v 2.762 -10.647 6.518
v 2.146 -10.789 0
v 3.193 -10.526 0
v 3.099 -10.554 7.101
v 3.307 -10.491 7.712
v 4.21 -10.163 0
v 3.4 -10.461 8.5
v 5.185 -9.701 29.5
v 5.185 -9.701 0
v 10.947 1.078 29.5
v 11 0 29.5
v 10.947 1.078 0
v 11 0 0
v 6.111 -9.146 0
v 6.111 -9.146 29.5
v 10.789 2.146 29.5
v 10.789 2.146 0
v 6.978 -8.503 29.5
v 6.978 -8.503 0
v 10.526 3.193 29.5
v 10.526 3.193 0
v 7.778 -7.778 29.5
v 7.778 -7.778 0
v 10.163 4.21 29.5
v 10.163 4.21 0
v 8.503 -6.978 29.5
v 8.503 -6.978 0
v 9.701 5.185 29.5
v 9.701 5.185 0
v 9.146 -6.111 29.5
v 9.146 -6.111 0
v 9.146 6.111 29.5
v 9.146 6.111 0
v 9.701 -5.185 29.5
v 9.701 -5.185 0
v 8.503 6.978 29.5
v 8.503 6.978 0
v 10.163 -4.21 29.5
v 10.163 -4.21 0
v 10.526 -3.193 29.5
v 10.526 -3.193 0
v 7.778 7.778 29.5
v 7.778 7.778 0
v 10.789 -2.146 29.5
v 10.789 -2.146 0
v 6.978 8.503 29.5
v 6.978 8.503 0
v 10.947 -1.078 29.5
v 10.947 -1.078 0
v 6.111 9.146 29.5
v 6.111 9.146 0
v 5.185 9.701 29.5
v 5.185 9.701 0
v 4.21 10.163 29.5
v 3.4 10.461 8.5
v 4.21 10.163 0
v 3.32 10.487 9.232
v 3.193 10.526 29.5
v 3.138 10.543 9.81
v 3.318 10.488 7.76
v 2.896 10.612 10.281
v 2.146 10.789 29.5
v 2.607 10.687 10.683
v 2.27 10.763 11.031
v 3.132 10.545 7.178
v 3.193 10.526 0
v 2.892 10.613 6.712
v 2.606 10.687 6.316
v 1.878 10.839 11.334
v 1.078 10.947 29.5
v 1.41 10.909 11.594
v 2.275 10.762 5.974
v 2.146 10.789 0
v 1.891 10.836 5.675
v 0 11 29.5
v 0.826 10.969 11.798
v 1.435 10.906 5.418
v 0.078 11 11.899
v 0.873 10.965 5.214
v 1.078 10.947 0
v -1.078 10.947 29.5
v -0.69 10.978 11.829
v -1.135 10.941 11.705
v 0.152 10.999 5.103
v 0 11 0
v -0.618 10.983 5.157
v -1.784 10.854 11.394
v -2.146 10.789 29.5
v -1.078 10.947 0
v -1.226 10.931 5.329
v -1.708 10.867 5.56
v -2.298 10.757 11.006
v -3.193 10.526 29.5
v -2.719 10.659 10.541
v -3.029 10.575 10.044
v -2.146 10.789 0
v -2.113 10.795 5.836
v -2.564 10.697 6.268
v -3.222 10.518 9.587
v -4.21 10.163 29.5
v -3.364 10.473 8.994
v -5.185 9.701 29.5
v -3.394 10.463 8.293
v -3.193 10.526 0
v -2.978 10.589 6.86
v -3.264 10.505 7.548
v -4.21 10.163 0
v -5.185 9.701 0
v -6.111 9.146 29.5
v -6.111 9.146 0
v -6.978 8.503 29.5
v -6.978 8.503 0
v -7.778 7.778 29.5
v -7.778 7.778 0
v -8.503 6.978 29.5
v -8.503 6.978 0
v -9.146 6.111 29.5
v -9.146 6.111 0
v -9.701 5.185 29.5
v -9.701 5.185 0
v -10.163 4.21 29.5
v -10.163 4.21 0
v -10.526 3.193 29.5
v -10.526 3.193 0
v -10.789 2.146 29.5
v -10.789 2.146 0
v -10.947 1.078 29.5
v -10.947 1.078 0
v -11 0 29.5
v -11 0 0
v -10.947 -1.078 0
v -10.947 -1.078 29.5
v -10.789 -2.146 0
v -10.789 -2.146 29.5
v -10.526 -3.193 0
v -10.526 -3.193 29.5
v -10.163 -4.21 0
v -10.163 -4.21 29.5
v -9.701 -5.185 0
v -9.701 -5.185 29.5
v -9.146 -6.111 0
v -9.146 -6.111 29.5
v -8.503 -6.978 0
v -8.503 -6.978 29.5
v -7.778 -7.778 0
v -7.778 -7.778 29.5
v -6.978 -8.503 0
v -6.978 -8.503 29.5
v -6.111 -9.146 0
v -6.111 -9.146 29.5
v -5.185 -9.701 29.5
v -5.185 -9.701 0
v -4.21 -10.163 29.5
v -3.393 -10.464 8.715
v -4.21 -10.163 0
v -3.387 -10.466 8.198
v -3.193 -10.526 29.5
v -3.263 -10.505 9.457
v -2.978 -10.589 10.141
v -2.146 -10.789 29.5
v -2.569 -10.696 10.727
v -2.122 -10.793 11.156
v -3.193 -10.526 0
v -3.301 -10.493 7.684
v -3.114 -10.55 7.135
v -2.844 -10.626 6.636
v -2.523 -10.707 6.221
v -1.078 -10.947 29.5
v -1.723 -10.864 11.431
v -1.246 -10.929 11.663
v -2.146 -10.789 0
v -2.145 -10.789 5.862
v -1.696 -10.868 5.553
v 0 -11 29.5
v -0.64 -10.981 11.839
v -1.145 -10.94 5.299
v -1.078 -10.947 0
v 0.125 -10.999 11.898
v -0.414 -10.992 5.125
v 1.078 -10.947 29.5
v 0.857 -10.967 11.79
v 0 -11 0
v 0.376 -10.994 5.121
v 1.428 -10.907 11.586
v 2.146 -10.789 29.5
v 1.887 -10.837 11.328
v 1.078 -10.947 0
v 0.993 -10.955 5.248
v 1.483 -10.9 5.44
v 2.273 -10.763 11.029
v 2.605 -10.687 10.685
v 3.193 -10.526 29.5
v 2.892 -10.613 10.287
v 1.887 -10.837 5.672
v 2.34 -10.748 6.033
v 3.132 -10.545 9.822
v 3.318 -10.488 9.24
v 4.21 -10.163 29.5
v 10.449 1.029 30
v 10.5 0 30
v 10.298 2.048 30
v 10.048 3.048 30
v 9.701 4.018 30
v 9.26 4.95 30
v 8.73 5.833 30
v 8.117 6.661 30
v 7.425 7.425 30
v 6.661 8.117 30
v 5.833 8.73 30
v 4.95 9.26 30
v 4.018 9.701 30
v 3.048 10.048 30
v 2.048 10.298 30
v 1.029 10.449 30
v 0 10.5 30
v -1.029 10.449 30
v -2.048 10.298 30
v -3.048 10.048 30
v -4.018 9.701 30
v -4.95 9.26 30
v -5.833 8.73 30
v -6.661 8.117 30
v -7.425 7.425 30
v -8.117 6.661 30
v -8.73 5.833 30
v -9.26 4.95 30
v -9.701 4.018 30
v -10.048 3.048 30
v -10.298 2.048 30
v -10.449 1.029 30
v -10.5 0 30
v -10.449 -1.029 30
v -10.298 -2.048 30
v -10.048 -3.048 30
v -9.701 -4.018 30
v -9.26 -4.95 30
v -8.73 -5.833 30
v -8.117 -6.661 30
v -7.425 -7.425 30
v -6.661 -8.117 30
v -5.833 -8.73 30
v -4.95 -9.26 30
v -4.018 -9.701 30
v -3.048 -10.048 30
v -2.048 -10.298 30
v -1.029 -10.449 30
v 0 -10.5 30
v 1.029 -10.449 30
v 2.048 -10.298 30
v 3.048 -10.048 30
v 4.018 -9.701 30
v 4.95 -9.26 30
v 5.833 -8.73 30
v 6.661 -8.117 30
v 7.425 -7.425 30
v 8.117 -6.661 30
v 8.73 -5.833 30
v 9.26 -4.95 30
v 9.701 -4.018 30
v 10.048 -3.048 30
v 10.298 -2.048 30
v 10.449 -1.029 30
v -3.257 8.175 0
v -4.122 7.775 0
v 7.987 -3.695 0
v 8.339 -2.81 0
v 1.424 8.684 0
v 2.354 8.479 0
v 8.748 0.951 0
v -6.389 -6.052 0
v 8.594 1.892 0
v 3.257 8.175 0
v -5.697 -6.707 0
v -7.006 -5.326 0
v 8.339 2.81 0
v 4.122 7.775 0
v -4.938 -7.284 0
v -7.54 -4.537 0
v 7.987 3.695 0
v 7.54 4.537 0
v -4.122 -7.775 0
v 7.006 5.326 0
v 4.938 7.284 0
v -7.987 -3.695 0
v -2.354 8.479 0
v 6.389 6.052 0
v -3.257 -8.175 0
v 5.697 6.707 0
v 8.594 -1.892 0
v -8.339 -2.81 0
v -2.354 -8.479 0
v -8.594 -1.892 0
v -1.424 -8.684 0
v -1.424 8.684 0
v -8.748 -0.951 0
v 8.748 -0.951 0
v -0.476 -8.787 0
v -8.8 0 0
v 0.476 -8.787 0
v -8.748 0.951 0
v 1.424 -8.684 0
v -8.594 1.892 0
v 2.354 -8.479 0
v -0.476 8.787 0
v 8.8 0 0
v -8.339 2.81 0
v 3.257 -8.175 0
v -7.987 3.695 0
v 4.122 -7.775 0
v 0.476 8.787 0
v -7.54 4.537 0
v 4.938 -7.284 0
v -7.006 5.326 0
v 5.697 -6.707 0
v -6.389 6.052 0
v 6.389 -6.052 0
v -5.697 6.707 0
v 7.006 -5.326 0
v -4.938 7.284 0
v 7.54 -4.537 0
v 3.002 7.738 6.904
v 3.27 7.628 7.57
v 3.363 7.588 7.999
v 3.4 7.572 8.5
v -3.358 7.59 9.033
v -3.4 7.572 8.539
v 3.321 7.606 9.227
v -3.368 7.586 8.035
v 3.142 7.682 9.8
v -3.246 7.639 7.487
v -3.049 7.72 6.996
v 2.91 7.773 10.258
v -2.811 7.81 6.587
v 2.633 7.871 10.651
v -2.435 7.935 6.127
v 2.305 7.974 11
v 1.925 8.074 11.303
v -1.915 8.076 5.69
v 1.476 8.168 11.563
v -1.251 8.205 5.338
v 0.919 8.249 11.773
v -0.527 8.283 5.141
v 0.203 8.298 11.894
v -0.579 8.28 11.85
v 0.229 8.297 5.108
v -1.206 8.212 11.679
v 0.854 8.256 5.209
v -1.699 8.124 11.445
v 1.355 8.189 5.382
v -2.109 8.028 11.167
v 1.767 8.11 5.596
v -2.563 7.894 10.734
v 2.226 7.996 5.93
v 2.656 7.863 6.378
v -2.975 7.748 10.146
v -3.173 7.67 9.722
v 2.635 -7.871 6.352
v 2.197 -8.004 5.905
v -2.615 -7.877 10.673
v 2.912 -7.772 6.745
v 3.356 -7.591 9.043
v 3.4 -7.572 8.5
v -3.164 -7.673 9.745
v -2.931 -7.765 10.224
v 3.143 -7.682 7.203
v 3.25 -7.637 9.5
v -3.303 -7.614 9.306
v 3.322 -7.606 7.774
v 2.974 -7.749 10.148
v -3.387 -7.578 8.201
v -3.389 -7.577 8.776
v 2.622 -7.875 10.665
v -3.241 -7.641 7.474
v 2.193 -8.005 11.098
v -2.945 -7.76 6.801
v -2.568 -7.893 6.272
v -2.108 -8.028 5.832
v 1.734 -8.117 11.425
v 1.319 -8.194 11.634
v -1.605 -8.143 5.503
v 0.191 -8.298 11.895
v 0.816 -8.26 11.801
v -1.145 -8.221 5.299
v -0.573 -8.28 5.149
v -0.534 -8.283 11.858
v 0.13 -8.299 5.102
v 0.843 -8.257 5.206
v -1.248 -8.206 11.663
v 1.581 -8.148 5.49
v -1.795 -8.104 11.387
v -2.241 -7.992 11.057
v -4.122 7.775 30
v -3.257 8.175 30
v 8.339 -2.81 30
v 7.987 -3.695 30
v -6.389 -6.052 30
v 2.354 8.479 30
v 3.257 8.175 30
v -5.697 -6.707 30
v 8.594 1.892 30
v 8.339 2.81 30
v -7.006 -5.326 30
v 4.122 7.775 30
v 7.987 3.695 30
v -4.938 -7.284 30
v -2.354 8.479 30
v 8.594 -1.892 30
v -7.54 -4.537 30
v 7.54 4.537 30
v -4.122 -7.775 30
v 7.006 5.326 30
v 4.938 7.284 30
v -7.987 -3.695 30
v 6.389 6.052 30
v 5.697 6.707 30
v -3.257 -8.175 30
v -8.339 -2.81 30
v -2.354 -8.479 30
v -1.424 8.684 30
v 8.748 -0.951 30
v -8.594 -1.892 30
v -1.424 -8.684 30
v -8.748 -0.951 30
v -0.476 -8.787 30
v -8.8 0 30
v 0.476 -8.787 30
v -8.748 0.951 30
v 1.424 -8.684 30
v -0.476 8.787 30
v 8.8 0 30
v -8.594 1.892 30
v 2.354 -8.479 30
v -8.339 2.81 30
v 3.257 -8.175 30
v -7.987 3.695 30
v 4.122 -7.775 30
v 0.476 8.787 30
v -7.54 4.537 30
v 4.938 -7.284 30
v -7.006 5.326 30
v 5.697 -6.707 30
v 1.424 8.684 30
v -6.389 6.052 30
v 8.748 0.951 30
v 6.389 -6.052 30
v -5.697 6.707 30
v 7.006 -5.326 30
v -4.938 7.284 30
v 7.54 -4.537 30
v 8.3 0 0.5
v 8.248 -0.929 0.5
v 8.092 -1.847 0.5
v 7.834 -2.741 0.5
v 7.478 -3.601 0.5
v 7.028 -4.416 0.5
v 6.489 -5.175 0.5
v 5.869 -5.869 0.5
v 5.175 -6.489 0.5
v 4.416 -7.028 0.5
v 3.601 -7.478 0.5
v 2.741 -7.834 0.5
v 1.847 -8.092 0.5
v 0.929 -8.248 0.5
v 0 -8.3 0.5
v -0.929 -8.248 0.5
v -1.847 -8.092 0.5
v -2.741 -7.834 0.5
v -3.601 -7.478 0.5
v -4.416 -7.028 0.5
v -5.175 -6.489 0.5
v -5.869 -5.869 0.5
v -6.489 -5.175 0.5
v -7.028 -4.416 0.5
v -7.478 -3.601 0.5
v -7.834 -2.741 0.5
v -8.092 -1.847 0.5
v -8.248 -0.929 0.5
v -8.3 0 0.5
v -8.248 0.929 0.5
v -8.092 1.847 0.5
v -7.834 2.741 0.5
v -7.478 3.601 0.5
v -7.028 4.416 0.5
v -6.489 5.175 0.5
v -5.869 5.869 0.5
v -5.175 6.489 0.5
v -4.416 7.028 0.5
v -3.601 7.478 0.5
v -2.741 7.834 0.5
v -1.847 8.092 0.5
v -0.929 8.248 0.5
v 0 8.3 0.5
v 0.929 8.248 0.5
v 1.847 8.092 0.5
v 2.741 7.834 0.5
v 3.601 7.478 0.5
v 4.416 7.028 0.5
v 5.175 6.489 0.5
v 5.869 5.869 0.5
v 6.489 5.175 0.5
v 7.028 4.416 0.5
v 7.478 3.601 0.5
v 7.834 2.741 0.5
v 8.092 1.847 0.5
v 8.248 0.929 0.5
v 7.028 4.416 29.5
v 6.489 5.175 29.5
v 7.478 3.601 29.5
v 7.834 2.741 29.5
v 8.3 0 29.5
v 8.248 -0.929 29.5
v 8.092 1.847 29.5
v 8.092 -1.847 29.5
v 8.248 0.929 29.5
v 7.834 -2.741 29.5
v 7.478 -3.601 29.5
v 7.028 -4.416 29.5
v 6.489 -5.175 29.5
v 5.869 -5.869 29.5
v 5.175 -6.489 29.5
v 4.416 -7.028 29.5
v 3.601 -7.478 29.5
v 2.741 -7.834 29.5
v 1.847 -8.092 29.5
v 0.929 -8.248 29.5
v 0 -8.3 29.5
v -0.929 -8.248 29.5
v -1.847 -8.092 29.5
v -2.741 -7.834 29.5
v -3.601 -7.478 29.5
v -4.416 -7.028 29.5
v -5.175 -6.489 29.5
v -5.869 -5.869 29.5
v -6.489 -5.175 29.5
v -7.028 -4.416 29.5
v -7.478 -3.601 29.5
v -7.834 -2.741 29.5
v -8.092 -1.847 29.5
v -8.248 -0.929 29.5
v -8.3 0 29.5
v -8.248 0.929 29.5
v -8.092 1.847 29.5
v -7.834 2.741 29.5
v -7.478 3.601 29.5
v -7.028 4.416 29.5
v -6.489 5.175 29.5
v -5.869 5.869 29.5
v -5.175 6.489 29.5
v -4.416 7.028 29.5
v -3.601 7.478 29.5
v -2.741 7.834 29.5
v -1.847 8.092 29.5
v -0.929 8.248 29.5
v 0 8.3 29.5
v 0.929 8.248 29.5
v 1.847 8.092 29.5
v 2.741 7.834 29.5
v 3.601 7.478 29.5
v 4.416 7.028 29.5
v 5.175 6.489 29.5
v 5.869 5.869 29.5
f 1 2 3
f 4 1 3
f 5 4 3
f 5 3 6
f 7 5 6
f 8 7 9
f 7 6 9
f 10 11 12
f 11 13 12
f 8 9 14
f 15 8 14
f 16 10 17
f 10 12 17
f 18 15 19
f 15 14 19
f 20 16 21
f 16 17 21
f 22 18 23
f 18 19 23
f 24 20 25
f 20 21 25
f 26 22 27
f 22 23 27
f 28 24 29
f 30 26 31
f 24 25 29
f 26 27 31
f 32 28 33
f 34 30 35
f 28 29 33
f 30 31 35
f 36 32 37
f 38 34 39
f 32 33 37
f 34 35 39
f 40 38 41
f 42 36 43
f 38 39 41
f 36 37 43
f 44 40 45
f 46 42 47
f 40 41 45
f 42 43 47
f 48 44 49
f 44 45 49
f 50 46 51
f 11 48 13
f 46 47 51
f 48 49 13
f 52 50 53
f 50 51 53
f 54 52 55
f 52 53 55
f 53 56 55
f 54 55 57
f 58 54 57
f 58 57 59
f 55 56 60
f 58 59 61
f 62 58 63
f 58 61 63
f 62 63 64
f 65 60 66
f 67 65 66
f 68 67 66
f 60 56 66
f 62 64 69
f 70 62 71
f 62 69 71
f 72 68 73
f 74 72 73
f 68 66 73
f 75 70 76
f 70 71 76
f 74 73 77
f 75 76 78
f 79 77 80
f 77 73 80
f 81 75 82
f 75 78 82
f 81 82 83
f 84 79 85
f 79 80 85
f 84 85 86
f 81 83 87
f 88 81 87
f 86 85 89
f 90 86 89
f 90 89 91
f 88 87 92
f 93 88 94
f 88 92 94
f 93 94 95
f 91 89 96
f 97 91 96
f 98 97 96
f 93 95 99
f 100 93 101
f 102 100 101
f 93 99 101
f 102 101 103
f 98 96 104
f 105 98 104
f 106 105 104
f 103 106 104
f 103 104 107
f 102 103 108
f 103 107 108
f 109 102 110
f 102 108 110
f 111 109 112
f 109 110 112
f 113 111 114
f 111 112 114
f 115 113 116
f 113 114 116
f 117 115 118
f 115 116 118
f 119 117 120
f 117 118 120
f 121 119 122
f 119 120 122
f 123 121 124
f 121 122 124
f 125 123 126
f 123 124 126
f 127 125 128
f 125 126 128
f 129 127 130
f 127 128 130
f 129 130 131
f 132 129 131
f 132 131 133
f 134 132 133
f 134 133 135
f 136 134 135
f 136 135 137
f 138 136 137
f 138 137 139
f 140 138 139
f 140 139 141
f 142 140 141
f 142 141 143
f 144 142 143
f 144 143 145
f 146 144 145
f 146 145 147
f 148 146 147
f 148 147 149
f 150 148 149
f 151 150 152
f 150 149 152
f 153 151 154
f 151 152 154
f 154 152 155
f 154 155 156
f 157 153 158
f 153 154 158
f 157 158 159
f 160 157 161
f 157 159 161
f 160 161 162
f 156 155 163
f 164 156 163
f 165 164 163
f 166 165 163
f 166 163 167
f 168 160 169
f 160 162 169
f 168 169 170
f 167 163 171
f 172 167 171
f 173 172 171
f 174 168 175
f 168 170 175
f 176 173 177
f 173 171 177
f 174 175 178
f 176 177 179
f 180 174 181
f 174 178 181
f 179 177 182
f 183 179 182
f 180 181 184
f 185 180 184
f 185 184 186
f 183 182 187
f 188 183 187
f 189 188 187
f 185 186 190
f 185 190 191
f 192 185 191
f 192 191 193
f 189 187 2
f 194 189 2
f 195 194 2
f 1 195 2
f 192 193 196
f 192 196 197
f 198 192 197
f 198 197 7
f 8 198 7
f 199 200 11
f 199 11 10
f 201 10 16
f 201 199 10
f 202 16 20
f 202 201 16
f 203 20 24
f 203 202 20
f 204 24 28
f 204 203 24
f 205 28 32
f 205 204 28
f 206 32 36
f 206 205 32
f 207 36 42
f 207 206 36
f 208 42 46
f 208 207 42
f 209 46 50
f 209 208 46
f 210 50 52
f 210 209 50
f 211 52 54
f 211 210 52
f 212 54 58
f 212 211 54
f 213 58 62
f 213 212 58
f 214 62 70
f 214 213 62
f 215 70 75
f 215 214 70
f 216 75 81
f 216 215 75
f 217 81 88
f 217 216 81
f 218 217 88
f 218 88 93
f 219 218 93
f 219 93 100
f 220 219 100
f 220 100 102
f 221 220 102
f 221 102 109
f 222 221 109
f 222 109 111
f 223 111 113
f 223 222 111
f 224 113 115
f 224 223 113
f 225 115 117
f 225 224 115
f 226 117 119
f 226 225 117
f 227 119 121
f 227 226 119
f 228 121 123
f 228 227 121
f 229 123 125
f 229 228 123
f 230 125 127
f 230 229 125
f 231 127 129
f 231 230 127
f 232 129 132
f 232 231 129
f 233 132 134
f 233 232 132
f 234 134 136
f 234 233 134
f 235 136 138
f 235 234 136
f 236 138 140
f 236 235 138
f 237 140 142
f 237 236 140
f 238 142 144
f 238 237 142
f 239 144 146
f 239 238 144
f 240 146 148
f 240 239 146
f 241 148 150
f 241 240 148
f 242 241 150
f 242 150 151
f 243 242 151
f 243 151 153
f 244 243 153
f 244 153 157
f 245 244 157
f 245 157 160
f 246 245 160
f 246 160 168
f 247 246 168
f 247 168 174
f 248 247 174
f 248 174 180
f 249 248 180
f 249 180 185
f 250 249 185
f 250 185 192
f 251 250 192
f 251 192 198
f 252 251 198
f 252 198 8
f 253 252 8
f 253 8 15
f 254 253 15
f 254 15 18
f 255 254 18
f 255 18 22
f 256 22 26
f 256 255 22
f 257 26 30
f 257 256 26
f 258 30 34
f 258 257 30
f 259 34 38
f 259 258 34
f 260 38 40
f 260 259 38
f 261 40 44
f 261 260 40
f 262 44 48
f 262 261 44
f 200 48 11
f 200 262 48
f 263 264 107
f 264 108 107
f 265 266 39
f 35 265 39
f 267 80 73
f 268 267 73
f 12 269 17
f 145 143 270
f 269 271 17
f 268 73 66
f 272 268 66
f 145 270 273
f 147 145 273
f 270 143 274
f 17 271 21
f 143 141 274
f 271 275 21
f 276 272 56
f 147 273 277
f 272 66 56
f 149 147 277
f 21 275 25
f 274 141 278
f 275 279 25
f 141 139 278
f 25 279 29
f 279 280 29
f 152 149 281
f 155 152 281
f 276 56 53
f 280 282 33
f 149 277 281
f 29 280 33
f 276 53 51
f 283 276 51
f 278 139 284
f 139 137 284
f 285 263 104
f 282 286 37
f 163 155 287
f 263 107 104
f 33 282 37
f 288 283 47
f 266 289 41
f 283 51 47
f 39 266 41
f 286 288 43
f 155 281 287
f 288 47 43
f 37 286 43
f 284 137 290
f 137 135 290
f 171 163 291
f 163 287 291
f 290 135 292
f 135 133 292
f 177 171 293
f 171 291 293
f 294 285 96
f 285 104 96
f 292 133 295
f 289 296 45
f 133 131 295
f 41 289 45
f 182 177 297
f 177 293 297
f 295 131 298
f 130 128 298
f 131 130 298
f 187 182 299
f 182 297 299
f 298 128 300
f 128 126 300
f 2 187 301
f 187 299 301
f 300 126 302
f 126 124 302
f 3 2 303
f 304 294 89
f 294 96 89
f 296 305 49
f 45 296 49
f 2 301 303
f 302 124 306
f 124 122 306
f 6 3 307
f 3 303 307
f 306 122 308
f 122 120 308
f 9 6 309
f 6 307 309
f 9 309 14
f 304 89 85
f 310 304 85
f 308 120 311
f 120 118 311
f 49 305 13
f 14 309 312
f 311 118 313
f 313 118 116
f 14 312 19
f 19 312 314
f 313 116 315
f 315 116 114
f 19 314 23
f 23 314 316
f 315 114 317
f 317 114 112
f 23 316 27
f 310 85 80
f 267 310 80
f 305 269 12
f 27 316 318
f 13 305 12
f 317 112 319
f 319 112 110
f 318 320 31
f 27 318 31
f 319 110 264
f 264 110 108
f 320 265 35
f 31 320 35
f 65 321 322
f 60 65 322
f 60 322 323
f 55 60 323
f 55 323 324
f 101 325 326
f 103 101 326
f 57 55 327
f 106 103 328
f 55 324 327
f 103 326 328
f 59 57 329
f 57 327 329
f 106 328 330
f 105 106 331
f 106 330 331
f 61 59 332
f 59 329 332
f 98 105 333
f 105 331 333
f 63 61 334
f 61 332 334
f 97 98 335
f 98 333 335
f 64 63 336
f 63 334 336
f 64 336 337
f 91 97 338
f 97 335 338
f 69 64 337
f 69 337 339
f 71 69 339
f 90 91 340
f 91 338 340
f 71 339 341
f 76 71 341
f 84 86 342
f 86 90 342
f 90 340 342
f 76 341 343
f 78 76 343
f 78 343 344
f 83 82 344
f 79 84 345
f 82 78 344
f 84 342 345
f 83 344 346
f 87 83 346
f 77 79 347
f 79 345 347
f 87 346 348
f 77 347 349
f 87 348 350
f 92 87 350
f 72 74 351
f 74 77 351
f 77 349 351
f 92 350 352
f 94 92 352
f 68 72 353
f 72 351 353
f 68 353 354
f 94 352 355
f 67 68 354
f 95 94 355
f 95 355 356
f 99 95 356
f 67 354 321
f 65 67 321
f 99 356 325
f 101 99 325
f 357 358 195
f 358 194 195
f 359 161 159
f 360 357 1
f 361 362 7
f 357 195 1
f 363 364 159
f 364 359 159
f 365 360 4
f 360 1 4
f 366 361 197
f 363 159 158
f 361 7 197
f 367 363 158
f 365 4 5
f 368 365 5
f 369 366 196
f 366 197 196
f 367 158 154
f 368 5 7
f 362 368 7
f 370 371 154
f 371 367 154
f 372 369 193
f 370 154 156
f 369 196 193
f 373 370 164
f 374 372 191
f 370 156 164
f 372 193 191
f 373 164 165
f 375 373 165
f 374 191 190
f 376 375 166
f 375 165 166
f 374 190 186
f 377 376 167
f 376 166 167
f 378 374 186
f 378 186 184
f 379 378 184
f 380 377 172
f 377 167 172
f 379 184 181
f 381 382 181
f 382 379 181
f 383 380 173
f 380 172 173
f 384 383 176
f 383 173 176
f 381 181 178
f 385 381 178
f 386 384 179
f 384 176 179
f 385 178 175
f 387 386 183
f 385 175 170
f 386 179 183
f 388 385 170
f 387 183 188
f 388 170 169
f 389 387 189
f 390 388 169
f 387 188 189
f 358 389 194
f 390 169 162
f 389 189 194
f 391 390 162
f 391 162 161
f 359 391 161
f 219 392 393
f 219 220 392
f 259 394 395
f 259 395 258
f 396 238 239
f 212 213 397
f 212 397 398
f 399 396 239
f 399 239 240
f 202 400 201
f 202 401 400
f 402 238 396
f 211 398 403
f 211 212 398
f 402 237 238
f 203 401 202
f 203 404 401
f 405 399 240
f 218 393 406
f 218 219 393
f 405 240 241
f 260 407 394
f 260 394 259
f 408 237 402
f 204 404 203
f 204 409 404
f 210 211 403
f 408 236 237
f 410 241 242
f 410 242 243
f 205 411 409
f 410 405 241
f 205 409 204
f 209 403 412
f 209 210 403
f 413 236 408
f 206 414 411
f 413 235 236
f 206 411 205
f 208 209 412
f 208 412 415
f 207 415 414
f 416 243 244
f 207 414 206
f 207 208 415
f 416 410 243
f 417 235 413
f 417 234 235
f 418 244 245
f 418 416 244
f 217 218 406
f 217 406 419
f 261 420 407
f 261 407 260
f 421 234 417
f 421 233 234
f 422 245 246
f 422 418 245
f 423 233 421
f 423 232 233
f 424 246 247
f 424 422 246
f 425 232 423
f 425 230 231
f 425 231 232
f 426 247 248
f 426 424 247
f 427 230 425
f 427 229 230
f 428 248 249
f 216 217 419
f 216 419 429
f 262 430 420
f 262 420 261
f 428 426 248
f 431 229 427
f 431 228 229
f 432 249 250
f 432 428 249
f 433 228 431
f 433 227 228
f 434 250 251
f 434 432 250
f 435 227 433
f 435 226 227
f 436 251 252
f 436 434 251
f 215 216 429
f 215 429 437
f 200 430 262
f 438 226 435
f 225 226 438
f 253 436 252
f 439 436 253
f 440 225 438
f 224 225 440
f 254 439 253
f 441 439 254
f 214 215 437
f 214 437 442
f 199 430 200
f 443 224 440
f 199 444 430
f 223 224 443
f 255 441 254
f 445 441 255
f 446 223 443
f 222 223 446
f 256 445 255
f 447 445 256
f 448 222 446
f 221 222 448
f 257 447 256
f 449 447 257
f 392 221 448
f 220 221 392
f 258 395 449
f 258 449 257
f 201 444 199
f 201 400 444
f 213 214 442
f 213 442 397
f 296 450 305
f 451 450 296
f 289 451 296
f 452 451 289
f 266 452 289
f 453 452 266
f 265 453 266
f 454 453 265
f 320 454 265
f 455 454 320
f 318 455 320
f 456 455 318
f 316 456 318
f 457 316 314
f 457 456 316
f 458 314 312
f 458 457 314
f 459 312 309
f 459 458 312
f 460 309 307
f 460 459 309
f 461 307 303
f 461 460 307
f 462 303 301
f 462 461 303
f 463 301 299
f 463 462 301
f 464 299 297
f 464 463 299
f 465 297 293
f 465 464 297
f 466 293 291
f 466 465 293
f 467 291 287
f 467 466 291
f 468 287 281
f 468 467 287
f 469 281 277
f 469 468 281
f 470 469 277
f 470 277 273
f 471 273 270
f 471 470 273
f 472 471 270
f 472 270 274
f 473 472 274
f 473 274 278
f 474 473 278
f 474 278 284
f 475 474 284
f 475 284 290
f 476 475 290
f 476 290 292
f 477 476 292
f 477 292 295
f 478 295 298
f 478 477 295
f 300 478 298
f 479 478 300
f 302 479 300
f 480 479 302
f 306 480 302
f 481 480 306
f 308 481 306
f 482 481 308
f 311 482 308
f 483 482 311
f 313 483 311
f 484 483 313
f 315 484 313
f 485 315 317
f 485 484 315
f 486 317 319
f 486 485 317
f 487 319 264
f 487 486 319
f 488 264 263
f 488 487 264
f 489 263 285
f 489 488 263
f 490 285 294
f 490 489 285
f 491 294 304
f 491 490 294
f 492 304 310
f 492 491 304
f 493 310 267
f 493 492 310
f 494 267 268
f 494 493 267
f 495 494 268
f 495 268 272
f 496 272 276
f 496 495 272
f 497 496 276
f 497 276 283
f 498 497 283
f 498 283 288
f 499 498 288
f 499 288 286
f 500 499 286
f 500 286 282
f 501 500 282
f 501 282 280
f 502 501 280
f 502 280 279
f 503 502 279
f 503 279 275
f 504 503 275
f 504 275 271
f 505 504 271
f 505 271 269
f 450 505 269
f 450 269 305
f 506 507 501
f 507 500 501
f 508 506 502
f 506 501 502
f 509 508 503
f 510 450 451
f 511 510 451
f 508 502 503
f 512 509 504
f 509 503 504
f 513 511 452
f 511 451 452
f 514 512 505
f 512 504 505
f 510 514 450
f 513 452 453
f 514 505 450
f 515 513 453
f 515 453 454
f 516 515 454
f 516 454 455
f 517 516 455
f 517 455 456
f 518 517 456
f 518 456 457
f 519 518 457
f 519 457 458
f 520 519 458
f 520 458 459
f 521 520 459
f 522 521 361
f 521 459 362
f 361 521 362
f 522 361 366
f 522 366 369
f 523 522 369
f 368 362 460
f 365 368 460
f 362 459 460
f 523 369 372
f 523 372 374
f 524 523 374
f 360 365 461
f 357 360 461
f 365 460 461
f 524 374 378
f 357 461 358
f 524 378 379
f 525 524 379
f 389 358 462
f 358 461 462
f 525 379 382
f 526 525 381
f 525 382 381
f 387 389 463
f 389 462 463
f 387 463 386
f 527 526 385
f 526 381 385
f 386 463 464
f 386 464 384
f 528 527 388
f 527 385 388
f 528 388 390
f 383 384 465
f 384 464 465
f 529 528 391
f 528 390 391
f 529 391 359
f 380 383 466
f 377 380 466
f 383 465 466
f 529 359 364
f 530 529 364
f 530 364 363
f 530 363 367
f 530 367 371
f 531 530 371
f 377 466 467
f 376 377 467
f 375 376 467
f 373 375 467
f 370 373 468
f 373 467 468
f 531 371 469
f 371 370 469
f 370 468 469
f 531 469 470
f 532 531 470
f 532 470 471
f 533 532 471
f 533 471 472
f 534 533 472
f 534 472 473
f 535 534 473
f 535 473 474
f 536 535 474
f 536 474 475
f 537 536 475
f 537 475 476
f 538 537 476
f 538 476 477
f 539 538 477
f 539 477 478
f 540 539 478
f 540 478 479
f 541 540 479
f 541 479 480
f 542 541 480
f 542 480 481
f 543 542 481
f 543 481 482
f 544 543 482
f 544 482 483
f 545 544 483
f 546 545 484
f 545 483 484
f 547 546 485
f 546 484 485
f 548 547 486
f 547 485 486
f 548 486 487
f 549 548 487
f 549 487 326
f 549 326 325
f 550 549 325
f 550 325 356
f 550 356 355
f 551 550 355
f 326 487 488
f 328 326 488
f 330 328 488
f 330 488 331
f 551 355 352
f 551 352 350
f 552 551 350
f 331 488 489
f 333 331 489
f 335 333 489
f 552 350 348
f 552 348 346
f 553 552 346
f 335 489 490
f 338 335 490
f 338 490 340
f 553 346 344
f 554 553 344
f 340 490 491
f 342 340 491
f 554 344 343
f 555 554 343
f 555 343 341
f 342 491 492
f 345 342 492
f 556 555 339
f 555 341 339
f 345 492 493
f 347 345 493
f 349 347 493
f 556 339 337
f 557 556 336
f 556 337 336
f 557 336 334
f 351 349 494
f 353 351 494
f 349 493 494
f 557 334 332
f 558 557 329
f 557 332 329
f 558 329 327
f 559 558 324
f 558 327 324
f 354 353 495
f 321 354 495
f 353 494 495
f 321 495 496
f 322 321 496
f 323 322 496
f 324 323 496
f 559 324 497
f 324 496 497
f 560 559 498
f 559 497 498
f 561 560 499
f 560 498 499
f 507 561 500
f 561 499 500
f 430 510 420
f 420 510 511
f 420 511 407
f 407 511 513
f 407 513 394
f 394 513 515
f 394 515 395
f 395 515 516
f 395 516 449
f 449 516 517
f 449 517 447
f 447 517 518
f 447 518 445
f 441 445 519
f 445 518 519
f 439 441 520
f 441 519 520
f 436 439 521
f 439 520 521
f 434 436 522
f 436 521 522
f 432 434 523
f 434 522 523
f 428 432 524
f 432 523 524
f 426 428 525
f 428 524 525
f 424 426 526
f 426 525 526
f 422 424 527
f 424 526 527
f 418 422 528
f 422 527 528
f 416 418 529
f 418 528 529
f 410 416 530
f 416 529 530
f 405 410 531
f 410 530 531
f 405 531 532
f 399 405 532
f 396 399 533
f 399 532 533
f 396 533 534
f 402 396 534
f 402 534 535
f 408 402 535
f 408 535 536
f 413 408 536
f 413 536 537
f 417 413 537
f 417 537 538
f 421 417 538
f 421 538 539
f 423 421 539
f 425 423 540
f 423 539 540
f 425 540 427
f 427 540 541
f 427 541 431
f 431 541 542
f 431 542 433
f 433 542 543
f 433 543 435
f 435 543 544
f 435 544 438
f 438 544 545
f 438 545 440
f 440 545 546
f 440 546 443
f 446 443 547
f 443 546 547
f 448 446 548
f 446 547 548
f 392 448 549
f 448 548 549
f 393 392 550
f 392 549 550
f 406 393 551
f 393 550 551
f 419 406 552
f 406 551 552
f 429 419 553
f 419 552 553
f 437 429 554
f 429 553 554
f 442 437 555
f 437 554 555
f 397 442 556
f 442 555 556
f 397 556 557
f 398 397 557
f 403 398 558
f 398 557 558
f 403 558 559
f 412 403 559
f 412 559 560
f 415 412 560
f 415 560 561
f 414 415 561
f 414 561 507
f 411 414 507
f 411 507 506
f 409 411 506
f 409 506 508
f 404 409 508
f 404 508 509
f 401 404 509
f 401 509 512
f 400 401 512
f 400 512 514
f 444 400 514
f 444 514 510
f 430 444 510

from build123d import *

# Parameters (mm, degrees)
CYLINDER_R          = 3.4
CYLINDER_DEPTH      = 100
CYLINDER_ROLL_ANGLE = 90
SKETCH_R            = 11
PAD_DEPTH           = 30
SKETCH001_R         = 8.3
POCKET_DEPTH        = 30.001
CHAMFER_SIZE        = 0.5


with BuildPart() as cylinder:
    # Cylinder → Cylinder (new body)
    with BuildSketch(Plane.XY):
        Circle(CYLINDER_R)
    extrude(amount=CYLINDER_DEPTH)


with BuildPart() as cylinder_1:
    # Cylinder roll: moved
    add(cylinder.part.rotate(Axis((0, 0, 0), (1, 0, 0)), CYLINDER_ROLL_ANGLE))


with BuildPart() as cylinder_2:
    # Cylinder placement: moved
    add(cylinder_1.part.moved(Location((0, 16, 8.5))))


with BuildPart() as chamfer_body:
    # Sketch → Pad (new body)
    with BuildSketch(Plane.XY):
        Circle(SKETCH_R)
    extrude(amount=PAD_DEPTH)

    # Sketch001 → Pocket (cut, through all)
    with BuildSketch(Plane(origin=(0, 0, 0), x_dir=(1, 0, 0), z_dir=(0, 0, -1))):
        Circle(SKETCH001_R)
    extrude(amount=-POCKET_DEPTH, mode=Mode.SUBTRACT)

    # Cut: cut Cylinder
    add(cylinder_2.part, mode=Mode.SUBTRACT)

    # Chamfer
    chamfer_edges = [chamfer_body.edges().sort_by_distance(p)[0] for p in [
        (-8.3, 0, 0),
        (-8.3, 0, 30),
        (-11, 0, 30),
    ]]
    chamfer(chamfer_edges, length=CHAMFER_SIZE)


solid = chamfer_body.part
